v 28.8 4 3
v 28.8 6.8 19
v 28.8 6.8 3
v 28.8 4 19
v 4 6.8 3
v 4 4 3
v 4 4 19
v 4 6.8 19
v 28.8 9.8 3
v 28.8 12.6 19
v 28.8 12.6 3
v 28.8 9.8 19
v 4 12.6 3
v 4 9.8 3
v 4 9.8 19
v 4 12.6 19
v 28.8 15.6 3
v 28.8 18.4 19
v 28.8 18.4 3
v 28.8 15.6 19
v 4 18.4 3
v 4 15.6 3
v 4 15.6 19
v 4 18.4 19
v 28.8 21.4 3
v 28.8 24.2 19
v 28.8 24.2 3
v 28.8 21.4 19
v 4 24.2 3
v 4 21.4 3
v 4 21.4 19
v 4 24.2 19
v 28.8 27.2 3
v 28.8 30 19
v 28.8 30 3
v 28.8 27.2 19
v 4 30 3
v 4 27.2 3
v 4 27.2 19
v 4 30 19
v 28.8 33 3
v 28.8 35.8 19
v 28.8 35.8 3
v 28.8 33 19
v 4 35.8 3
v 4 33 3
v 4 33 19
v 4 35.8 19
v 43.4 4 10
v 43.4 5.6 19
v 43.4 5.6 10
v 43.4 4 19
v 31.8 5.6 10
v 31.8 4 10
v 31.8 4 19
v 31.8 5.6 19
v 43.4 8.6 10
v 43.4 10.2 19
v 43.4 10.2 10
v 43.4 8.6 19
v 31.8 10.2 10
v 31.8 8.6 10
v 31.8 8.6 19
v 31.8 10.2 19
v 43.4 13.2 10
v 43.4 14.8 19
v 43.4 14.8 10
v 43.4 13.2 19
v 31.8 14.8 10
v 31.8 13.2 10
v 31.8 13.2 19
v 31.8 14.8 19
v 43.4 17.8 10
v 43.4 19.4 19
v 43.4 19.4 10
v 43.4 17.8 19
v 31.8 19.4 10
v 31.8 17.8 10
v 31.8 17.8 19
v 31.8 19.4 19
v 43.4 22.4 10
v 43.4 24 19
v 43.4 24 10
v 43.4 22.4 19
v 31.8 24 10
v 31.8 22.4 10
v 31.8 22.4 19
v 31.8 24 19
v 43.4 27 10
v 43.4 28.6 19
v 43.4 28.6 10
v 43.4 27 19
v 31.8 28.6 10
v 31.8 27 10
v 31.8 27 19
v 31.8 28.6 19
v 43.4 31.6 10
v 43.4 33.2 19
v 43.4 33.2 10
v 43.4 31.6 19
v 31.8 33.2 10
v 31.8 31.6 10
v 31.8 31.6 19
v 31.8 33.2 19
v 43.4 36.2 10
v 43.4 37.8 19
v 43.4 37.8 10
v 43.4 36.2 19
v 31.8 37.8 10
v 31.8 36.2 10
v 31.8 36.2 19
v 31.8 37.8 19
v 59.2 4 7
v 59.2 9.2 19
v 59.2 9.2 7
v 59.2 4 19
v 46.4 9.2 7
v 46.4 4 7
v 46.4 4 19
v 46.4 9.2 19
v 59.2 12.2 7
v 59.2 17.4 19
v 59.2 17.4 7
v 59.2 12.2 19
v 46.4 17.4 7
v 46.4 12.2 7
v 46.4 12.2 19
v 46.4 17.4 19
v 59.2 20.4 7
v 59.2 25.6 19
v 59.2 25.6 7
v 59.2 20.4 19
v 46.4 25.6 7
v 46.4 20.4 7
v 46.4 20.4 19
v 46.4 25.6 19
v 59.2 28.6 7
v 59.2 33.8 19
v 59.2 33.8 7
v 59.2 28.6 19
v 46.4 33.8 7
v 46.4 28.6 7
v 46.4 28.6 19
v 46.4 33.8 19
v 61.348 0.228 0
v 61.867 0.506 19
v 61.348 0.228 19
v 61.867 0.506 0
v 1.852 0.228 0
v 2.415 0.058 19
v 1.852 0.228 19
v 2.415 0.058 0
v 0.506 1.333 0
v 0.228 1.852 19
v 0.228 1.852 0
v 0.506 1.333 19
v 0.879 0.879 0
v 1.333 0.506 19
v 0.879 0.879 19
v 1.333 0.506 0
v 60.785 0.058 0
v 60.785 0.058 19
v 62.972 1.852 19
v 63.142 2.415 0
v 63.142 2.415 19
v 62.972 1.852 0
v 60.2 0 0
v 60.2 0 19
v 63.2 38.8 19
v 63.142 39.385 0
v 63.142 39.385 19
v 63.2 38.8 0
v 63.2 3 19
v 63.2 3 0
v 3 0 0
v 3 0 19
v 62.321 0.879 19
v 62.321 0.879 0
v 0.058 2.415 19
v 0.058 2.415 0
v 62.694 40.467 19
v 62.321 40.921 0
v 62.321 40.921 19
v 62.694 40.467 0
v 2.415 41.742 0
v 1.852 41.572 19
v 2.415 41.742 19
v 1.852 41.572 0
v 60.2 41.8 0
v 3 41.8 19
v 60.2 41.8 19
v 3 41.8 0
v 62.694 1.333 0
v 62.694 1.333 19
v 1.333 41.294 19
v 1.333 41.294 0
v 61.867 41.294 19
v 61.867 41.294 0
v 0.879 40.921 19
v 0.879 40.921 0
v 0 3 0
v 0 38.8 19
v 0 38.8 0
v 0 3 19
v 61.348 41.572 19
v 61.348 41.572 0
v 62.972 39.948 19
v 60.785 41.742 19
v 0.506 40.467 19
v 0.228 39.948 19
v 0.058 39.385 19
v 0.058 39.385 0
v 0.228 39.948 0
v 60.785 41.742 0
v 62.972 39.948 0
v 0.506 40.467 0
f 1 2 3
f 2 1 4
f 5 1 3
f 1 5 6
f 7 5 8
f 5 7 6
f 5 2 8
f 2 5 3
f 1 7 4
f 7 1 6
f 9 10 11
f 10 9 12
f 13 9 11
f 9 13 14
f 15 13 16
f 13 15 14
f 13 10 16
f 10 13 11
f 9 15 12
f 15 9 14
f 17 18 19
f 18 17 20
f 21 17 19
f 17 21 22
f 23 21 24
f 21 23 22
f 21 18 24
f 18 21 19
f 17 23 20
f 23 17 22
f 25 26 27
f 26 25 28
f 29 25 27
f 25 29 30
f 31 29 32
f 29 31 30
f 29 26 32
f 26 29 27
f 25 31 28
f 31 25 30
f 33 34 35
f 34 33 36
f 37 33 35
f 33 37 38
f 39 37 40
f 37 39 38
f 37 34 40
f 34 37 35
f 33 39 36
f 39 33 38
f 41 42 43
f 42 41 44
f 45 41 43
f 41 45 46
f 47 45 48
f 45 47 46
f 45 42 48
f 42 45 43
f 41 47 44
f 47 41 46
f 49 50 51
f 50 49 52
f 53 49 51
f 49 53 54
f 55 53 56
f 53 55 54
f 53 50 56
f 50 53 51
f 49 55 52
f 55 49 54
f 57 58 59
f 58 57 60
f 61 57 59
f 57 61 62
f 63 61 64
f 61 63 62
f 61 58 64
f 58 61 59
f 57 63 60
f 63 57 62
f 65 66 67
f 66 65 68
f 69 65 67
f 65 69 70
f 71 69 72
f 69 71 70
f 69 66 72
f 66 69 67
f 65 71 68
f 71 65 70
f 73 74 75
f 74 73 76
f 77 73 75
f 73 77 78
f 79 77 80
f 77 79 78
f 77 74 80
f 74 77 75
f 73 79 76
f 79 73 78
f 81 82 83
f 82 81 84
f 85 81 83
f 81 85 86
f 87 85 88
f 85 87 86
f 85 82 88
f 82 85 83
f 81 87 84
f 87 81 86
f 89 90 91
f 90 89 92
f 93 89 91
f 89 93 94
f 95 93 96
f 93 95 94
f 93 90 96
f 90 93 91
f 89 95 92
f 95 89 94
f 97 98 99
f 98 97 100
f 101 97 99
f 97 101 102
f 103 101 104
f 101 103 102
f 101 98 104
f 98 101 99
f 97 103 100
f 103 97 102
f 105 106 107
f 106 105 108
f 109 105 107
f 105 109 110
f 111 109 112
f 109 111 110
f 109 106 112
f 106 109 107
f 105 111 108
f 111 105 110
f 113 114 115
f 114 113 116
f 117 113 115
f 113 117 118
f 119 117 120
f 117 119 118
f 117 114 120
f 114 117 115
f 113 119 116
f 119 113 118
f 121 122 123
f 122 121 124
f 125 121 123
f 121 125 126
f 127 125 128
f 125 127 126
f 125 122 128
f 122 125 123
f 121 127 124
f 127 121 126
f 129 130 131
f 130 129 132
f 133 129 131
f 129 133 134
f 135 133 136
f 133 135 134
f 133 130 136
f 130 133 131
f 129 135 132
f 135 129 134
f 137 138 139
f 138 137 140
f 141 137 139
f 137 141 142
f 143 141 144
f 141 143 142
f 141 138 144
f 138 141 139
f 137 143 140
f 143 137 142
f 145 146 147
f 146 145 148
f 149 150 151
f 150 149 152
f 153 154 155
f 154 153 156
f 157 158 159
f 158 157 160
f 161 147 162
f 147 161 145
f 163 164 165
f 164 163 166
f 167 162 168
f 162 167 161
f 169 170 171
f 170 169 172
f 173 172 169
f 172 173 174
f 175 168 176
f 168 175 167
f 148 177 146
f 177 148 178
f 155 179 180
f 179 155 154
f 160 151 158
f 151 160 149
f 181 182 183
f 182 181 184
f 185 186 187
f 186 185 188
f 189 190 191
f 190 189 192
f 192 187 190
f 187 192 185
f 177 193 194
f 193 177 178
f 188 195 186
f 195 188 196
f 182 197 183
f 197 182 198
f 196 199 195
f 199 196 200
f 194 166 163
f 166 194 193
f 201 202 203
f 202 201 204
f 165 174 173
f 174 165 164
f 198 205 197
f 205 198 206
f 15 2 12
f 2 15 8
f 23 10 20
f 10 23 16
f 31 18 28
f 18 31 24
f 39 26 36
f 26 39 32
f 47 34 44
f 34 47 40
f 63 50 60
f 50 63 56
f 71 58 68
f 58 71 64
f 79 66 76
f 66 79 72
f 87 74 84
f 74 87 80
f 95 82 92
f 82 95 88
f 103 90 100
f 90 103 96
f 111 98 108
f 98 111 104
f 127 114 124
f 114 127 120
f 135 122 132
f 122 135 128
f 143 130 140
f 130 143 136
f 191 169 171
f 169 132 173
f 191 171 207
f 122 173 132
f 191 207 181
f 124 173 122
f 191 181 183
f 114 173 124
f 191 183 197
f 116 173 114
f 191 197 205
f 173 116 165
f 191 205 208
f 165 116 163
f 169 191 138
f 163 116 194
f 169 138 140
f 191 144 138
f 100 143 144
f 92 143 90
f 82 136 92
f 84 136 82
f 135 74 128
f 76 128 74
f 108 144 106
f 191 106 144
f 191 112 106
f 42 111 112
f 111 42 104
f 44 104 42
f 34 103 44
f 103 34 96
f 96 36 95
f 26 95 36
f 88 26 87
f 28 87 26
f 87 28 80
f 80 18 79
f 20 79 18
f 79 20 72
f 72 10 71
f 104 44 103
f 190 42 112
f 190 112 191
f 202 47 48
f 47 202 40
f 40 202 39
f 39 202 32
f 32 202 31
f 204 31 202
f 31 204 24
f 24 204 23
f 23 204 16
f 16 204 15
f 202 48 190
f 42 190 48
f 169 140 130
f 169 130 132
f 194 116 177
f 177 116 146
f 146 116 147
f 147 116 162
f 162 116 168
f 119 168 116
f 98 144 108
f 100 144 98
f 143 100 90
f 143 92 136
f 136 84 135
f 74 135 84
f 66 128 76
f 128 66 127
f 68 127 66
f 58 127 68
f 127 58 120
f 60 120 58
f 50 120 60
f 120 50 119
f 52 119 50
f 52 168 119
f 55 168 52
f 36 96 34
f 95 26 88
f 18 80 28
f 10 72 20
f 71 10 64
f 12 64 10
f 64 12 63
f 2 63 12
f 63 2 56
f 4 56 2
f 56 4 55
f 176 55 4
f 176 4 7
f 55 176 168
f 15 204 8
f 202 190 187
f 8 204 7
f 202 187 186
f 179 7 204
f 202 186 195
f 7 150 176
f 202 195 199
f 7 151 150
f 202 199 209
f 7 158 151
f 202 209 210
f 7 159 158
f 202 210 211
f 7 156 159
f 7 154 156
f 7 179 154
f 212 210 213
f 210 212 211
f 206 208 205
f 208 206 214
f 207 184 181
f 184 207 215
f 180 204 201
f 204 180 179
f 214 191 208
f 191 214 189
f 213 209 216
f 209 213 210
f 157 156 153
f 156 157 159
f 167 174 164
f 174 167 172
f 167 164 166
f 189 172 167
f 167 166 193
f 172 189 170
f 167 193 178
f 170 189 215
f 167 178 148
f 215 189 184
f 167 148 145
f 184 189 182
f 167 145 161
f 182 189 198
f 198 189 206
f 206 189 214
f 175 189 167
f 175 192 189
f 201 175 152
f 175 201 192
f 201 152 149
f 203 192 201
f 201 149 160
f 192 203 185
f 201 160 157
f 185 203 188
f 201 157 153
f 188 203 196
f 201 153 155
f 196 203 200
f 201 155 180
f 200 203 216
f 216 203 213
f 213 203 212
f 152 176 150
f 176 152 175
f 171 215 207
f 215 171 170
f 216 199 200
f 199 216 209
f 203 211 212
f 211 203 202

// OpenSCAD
// Memory Card & USB Stick Holder — keep SD cards, microSD cards and
// USB sticks upright and easy to find. Print upright (as rendered).

/* [How many] */
sd_count = 6;           // [0:1:20]
microsd_count = 8;      // [0:1:30]
usb_count = 4;          // [0:1:20]

/* [Hidden] */
$fn = 32;
// [slot width, slot thickness, slot depth]
SD    = [24.8, 2.8, 16];
MICRO = [11.6, 1.6, 9];
USB   = [12.8, 5.2, 12];
types = [[SD, sd_count], [MICRO, microsd_count], [USB, usb_count]];
gap = 3;         // material between slots
border = 4;

function col_w(i) = types[i][1] > 0 ? types[i][0][0] + gap : 0;
function col_x(i) = i == 0 ? border : col_x(i - 1) + col_w(i - 1);
function col_len(i) = types[i][1] * (types[i][0][1] + gap) - gap;

L = col_x(len(types)) - gap + border;
W = max([for (i = [0 : len(types) - 1]) col_len(i)]) + 2 * border;
H = max([for (t = types) t[1] > 0 ? t[0][2] : 0]) + 3;
assert(sd_count + microsd_count + usb_count > 0, "need at least one slot");

difference() {
    linear_extrude(H) offset(r = 3) offset(delta = -3) square([L, W]);
    for (i = [0 : len(types) - 1])
        for (j = [0 : 1 : types[i][1] - 1]) {
            s = types[i][0];
            translate([col_x(i), border + j * (s[1] + gap), H - s[2]])
                cube([s[0], s[1], s[2] + 1]);
        }
}
